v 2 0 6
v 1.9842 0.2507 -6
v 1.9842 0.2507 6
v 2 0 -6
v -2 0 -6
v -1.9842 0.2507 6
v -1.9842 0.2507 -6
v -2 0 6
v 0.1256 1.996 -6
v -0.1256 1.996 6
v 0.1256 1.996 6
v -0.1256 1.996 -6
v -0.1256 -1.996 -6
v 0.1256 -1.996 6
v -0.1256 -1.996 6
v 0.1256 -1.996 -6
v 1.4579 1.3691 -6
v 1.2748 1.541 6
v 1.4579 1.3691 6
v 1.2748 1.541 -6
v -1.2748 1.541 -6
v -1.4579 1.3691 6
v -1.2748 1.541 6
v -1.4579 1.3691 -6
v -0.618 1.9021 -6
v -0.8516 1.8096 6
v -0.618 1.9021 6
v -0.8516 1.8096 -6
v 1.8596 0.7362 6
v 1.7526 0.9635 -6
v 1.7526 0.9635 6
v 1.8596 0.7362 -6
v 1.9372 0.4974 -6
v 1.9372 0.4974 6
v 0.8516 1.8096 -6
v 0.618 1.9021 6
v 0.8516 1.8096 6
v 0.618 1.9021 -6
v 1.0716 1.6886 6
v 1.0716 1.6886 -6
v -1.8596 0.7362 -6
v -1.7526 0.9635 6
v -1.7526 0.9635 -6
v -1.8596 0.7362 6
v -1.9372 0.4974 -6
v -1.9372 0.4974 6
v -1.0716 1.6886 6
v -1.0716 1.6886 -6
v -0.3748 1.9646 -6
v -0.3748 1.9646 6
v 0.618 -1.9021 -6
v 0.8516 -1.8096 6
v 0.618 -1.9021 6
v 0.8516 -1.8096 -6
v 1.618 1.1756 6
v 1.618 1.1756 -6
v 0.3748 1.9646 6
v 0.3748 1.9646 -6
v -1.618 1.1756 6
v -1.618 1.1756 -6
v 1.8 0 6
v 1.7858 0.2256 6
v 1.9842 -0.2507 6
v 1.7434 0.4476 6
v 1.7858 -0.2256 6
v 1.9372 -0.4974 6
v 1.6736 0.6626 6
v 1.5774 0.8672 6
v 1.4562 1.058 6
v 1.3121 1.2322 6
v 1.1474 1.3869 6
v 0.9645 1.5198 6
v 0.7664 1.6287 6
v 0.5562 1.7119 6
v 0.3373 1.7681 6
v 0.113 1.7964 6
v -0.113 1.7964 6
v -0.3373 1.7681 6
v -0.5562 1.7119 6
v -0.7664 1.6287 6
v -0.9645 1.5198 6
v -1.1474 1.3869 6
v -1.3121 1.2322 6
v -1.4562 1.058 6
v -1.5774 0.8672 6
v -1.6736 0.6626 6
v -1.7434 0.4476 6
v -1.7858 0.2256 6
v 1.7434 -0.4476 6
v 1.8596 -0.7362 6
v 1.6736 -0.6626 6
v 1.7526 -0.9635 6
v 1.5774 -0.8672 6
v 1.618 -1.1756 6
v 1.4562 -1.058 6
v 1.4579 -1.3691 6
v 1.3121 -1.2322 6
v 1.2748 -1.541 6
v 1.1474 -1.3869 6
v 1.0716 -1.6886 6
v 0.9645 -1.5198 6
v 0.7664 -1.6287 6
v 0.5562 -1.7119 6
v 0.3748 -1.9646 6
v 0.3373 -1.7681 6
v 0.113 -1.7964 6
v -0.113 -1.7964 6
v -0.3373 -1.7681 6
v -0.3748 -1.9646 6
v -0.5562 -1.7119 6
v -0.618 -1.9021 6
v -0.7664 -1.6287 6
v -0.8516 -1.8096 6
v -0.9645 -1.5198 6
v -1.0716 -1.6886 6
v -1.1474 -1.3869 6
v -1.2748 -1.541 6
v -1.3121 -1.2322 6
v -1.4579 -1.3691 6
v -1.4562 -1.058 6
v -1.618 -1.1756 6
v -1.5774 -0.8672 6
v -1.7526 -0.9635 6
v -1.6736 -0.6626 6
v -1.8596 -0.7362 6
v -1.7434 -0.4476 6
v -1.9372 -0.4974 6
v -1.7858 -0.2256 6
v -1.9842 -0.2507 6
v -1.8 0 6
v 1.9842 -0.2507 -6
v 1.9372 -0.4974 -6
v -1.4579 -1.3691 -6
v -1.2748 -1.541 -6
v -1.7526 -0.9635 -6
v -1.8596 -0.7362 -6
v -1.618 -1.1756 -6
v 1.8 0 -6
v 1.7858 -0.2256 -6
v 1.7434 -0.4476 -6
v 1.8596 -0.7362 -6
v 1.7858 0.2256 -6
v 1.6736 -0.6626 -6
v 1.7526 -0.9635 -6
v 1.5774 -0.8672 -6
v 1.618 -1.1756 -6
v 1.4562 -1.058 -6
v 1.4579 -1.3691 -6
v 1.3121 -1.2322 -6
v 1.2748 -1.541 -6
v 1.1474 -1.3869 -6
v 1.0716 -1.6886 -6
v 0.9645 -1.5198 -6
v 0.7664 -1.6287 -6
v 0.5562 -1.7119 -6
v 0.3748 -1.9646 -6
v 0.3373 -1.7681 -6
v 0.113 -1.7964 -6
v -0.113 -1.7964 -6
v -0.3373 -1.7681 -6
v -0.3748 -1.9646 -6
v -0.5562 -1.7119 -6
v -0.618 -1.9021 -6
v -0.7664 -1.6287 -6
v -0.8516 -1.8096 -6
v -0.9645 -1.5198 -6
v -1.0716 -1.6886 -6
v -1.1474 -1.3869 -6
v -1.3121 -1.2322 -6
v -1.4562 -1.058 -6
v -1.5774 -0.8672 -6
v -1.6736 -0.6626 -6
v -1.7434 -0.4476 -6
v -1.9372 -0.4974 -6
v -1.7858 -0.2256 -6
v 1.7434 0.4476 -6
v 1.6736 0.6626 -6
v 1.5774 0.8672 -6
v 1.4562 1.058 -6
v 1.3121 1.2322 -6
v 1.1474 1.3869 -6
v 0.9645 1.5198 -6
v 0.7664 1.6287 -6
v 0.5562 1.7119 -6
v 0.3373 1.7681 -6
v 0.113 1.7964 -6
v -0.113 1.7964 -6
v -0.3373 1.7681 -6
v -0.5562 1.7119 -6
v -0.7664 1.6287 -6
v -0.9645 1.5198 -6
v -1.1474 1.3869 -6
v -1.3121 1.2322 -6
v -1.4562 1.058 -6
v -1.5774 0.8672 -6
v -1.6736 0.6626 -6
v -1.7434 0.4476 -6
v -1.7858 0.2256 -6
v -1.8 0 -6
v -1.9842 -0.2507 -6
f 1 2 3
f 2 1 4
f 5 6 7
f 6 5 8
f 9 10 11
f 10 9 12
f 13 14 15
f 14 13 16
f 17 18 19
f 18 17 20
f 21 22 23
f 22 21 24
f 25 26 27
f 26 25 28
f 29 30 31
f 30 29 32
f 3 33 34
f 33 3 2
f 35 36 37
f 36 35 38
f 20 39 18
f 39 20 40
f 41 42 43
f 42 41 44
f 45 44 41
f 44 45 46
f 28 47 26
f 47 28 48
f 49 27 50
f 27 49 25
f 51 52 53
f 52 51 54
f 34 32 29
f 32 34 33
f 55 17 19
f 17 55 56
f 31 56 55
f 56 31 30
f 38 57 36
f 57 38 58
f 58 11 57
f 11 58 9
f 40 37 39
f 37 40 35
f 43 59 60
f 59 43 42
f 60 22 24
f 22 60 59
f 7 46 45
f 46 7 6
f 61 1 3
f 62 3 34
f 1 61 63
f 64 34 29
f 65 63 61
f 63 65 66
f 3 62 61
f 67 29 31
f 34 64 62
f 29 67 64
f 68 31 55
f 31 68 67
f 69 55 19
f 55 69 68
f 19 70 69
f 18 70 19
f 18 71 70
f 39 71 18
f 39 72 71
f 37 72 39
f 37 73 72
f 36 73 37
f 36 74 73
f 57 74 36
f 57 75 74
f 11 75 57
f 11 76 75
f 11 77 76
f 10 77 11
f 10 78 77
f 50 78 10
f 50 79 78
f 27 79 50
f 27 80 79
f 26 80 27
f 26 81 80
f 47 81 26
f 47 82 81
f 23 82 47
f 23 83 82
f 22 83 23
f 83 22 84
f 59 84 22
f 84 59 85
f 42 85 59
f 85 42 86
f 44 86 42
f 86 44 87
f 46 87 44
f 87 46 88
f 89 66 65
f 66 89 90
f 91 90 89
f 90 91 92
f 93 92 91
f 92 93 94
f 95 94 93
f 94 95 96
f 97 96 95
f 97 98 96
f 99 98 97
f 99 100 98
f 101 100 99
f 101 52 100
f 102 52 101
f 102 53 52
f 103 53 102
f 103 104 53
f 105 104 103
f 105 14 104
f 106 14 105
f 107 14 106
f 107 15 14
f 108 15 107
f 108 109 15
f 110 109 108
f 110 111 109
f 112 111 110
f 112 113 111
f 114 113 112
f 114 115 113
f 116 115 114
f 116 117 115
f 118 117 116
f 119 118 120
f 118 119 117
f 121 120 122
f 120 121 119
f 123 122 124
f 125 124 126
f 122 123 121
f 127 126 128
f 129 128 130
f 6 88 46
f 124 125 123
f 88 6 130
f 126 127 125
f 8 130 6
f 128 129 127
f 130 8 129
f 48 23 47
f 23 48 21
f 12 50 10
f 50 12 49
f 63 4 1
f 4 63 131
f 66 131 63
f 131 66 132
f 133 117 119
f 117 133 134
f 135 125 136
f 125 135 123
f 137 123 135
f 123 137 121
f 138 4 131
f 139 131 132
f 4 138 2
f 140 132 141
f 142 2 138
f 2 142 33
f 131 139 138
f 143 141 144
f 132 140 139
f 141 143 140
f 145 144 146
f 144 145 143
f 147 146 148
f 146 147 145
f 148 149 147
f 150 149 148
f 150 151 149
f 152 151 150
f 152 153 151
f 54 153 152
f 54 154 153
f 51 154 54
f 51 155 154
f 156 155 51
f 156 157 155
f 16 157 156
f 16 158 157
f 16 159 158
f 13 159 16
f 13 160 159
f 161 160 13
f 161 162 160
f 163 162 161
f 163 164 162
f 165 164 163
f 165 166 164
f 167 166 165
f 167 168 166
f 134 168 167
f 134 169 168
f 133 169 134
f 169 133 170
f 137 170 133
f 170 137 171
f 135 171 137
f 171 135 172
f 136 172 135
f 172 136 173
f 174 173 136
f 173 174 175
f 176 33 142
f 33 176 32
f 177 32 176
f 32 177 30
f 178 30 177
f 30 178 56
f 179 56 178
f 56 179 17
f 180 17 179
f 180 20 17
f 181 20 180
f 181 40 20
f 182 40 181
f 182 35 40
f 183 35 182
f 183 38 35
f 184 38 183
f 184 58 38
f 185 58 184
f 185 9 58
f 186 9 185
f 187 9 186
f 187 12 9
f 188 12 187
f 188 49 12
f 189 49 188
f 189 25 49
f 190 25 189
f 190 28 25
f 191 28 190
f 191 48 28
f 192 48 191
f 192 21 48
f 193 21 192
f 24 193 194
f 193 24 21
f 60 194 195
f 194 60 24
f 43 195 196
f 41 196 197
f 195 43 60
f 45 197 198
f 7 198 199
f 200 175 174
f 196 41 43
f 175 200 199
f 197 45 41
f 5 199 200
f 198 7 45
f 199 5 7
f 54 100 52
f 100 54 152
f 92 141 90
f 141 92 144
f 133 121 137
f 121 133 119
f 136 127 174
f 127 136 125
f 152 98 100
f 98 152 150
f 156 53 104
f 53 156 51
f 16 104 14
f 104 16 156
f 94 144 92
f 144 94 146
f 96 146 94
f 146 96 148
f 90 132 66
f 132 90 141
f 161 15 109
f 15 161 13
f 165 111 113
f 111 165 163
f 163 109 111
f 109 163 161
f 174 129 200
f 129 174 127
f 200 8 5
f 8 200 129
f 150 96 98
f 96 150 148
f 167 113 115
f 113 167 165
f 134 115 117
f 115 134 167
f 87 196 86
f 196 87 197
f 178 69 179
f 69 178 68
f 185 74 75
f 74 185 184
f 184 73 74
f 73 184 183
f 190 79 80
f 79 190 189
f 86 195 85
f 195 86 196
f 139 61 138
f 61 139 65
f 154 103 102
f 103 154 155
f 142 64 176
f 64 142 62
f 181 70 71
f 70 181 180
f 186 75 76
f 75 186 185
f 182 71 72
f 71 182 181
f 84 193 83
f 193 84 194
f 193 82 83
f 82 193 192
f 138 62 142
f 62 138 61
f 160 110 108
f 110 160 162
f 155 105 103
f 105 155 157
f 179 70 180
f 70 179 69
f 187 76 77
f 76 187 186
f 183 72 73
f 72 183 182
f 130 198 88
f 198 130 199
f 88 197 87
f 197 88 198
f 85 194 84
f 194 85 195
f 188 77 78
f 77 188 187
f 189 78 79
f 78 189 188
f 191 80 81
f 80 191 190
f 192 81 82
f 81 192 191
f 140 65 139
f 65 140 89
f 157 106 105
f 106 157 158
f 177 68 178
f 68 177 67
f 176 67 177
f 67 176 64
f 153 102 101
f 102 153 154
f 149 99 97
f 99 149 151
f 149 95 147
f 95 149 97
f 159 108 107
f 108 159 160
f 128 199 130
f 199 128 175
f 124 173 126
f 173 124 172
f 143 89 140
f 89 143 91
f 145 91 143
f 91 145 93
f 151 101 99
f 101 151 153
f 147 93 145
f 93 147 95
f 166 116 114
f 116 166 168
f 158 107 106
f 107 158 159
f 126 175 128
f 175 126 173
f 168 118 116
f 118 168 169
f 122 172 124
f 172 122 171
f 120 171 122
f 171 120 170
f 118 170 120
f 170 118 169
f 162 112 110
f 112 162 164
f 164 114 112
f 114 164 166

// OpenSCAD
$fn = 50;


difference() {
	union() {
		translate(v = [0, 0, -6.0000000000]) {
			cylinder(h = 12, r = 2.0000000000);
		}
	}
	union() {
		translate(v = [0, 0, -100.0000000000]) {
			cylinder(h = 200, r = 1.8000000000);
		}
	}
}
